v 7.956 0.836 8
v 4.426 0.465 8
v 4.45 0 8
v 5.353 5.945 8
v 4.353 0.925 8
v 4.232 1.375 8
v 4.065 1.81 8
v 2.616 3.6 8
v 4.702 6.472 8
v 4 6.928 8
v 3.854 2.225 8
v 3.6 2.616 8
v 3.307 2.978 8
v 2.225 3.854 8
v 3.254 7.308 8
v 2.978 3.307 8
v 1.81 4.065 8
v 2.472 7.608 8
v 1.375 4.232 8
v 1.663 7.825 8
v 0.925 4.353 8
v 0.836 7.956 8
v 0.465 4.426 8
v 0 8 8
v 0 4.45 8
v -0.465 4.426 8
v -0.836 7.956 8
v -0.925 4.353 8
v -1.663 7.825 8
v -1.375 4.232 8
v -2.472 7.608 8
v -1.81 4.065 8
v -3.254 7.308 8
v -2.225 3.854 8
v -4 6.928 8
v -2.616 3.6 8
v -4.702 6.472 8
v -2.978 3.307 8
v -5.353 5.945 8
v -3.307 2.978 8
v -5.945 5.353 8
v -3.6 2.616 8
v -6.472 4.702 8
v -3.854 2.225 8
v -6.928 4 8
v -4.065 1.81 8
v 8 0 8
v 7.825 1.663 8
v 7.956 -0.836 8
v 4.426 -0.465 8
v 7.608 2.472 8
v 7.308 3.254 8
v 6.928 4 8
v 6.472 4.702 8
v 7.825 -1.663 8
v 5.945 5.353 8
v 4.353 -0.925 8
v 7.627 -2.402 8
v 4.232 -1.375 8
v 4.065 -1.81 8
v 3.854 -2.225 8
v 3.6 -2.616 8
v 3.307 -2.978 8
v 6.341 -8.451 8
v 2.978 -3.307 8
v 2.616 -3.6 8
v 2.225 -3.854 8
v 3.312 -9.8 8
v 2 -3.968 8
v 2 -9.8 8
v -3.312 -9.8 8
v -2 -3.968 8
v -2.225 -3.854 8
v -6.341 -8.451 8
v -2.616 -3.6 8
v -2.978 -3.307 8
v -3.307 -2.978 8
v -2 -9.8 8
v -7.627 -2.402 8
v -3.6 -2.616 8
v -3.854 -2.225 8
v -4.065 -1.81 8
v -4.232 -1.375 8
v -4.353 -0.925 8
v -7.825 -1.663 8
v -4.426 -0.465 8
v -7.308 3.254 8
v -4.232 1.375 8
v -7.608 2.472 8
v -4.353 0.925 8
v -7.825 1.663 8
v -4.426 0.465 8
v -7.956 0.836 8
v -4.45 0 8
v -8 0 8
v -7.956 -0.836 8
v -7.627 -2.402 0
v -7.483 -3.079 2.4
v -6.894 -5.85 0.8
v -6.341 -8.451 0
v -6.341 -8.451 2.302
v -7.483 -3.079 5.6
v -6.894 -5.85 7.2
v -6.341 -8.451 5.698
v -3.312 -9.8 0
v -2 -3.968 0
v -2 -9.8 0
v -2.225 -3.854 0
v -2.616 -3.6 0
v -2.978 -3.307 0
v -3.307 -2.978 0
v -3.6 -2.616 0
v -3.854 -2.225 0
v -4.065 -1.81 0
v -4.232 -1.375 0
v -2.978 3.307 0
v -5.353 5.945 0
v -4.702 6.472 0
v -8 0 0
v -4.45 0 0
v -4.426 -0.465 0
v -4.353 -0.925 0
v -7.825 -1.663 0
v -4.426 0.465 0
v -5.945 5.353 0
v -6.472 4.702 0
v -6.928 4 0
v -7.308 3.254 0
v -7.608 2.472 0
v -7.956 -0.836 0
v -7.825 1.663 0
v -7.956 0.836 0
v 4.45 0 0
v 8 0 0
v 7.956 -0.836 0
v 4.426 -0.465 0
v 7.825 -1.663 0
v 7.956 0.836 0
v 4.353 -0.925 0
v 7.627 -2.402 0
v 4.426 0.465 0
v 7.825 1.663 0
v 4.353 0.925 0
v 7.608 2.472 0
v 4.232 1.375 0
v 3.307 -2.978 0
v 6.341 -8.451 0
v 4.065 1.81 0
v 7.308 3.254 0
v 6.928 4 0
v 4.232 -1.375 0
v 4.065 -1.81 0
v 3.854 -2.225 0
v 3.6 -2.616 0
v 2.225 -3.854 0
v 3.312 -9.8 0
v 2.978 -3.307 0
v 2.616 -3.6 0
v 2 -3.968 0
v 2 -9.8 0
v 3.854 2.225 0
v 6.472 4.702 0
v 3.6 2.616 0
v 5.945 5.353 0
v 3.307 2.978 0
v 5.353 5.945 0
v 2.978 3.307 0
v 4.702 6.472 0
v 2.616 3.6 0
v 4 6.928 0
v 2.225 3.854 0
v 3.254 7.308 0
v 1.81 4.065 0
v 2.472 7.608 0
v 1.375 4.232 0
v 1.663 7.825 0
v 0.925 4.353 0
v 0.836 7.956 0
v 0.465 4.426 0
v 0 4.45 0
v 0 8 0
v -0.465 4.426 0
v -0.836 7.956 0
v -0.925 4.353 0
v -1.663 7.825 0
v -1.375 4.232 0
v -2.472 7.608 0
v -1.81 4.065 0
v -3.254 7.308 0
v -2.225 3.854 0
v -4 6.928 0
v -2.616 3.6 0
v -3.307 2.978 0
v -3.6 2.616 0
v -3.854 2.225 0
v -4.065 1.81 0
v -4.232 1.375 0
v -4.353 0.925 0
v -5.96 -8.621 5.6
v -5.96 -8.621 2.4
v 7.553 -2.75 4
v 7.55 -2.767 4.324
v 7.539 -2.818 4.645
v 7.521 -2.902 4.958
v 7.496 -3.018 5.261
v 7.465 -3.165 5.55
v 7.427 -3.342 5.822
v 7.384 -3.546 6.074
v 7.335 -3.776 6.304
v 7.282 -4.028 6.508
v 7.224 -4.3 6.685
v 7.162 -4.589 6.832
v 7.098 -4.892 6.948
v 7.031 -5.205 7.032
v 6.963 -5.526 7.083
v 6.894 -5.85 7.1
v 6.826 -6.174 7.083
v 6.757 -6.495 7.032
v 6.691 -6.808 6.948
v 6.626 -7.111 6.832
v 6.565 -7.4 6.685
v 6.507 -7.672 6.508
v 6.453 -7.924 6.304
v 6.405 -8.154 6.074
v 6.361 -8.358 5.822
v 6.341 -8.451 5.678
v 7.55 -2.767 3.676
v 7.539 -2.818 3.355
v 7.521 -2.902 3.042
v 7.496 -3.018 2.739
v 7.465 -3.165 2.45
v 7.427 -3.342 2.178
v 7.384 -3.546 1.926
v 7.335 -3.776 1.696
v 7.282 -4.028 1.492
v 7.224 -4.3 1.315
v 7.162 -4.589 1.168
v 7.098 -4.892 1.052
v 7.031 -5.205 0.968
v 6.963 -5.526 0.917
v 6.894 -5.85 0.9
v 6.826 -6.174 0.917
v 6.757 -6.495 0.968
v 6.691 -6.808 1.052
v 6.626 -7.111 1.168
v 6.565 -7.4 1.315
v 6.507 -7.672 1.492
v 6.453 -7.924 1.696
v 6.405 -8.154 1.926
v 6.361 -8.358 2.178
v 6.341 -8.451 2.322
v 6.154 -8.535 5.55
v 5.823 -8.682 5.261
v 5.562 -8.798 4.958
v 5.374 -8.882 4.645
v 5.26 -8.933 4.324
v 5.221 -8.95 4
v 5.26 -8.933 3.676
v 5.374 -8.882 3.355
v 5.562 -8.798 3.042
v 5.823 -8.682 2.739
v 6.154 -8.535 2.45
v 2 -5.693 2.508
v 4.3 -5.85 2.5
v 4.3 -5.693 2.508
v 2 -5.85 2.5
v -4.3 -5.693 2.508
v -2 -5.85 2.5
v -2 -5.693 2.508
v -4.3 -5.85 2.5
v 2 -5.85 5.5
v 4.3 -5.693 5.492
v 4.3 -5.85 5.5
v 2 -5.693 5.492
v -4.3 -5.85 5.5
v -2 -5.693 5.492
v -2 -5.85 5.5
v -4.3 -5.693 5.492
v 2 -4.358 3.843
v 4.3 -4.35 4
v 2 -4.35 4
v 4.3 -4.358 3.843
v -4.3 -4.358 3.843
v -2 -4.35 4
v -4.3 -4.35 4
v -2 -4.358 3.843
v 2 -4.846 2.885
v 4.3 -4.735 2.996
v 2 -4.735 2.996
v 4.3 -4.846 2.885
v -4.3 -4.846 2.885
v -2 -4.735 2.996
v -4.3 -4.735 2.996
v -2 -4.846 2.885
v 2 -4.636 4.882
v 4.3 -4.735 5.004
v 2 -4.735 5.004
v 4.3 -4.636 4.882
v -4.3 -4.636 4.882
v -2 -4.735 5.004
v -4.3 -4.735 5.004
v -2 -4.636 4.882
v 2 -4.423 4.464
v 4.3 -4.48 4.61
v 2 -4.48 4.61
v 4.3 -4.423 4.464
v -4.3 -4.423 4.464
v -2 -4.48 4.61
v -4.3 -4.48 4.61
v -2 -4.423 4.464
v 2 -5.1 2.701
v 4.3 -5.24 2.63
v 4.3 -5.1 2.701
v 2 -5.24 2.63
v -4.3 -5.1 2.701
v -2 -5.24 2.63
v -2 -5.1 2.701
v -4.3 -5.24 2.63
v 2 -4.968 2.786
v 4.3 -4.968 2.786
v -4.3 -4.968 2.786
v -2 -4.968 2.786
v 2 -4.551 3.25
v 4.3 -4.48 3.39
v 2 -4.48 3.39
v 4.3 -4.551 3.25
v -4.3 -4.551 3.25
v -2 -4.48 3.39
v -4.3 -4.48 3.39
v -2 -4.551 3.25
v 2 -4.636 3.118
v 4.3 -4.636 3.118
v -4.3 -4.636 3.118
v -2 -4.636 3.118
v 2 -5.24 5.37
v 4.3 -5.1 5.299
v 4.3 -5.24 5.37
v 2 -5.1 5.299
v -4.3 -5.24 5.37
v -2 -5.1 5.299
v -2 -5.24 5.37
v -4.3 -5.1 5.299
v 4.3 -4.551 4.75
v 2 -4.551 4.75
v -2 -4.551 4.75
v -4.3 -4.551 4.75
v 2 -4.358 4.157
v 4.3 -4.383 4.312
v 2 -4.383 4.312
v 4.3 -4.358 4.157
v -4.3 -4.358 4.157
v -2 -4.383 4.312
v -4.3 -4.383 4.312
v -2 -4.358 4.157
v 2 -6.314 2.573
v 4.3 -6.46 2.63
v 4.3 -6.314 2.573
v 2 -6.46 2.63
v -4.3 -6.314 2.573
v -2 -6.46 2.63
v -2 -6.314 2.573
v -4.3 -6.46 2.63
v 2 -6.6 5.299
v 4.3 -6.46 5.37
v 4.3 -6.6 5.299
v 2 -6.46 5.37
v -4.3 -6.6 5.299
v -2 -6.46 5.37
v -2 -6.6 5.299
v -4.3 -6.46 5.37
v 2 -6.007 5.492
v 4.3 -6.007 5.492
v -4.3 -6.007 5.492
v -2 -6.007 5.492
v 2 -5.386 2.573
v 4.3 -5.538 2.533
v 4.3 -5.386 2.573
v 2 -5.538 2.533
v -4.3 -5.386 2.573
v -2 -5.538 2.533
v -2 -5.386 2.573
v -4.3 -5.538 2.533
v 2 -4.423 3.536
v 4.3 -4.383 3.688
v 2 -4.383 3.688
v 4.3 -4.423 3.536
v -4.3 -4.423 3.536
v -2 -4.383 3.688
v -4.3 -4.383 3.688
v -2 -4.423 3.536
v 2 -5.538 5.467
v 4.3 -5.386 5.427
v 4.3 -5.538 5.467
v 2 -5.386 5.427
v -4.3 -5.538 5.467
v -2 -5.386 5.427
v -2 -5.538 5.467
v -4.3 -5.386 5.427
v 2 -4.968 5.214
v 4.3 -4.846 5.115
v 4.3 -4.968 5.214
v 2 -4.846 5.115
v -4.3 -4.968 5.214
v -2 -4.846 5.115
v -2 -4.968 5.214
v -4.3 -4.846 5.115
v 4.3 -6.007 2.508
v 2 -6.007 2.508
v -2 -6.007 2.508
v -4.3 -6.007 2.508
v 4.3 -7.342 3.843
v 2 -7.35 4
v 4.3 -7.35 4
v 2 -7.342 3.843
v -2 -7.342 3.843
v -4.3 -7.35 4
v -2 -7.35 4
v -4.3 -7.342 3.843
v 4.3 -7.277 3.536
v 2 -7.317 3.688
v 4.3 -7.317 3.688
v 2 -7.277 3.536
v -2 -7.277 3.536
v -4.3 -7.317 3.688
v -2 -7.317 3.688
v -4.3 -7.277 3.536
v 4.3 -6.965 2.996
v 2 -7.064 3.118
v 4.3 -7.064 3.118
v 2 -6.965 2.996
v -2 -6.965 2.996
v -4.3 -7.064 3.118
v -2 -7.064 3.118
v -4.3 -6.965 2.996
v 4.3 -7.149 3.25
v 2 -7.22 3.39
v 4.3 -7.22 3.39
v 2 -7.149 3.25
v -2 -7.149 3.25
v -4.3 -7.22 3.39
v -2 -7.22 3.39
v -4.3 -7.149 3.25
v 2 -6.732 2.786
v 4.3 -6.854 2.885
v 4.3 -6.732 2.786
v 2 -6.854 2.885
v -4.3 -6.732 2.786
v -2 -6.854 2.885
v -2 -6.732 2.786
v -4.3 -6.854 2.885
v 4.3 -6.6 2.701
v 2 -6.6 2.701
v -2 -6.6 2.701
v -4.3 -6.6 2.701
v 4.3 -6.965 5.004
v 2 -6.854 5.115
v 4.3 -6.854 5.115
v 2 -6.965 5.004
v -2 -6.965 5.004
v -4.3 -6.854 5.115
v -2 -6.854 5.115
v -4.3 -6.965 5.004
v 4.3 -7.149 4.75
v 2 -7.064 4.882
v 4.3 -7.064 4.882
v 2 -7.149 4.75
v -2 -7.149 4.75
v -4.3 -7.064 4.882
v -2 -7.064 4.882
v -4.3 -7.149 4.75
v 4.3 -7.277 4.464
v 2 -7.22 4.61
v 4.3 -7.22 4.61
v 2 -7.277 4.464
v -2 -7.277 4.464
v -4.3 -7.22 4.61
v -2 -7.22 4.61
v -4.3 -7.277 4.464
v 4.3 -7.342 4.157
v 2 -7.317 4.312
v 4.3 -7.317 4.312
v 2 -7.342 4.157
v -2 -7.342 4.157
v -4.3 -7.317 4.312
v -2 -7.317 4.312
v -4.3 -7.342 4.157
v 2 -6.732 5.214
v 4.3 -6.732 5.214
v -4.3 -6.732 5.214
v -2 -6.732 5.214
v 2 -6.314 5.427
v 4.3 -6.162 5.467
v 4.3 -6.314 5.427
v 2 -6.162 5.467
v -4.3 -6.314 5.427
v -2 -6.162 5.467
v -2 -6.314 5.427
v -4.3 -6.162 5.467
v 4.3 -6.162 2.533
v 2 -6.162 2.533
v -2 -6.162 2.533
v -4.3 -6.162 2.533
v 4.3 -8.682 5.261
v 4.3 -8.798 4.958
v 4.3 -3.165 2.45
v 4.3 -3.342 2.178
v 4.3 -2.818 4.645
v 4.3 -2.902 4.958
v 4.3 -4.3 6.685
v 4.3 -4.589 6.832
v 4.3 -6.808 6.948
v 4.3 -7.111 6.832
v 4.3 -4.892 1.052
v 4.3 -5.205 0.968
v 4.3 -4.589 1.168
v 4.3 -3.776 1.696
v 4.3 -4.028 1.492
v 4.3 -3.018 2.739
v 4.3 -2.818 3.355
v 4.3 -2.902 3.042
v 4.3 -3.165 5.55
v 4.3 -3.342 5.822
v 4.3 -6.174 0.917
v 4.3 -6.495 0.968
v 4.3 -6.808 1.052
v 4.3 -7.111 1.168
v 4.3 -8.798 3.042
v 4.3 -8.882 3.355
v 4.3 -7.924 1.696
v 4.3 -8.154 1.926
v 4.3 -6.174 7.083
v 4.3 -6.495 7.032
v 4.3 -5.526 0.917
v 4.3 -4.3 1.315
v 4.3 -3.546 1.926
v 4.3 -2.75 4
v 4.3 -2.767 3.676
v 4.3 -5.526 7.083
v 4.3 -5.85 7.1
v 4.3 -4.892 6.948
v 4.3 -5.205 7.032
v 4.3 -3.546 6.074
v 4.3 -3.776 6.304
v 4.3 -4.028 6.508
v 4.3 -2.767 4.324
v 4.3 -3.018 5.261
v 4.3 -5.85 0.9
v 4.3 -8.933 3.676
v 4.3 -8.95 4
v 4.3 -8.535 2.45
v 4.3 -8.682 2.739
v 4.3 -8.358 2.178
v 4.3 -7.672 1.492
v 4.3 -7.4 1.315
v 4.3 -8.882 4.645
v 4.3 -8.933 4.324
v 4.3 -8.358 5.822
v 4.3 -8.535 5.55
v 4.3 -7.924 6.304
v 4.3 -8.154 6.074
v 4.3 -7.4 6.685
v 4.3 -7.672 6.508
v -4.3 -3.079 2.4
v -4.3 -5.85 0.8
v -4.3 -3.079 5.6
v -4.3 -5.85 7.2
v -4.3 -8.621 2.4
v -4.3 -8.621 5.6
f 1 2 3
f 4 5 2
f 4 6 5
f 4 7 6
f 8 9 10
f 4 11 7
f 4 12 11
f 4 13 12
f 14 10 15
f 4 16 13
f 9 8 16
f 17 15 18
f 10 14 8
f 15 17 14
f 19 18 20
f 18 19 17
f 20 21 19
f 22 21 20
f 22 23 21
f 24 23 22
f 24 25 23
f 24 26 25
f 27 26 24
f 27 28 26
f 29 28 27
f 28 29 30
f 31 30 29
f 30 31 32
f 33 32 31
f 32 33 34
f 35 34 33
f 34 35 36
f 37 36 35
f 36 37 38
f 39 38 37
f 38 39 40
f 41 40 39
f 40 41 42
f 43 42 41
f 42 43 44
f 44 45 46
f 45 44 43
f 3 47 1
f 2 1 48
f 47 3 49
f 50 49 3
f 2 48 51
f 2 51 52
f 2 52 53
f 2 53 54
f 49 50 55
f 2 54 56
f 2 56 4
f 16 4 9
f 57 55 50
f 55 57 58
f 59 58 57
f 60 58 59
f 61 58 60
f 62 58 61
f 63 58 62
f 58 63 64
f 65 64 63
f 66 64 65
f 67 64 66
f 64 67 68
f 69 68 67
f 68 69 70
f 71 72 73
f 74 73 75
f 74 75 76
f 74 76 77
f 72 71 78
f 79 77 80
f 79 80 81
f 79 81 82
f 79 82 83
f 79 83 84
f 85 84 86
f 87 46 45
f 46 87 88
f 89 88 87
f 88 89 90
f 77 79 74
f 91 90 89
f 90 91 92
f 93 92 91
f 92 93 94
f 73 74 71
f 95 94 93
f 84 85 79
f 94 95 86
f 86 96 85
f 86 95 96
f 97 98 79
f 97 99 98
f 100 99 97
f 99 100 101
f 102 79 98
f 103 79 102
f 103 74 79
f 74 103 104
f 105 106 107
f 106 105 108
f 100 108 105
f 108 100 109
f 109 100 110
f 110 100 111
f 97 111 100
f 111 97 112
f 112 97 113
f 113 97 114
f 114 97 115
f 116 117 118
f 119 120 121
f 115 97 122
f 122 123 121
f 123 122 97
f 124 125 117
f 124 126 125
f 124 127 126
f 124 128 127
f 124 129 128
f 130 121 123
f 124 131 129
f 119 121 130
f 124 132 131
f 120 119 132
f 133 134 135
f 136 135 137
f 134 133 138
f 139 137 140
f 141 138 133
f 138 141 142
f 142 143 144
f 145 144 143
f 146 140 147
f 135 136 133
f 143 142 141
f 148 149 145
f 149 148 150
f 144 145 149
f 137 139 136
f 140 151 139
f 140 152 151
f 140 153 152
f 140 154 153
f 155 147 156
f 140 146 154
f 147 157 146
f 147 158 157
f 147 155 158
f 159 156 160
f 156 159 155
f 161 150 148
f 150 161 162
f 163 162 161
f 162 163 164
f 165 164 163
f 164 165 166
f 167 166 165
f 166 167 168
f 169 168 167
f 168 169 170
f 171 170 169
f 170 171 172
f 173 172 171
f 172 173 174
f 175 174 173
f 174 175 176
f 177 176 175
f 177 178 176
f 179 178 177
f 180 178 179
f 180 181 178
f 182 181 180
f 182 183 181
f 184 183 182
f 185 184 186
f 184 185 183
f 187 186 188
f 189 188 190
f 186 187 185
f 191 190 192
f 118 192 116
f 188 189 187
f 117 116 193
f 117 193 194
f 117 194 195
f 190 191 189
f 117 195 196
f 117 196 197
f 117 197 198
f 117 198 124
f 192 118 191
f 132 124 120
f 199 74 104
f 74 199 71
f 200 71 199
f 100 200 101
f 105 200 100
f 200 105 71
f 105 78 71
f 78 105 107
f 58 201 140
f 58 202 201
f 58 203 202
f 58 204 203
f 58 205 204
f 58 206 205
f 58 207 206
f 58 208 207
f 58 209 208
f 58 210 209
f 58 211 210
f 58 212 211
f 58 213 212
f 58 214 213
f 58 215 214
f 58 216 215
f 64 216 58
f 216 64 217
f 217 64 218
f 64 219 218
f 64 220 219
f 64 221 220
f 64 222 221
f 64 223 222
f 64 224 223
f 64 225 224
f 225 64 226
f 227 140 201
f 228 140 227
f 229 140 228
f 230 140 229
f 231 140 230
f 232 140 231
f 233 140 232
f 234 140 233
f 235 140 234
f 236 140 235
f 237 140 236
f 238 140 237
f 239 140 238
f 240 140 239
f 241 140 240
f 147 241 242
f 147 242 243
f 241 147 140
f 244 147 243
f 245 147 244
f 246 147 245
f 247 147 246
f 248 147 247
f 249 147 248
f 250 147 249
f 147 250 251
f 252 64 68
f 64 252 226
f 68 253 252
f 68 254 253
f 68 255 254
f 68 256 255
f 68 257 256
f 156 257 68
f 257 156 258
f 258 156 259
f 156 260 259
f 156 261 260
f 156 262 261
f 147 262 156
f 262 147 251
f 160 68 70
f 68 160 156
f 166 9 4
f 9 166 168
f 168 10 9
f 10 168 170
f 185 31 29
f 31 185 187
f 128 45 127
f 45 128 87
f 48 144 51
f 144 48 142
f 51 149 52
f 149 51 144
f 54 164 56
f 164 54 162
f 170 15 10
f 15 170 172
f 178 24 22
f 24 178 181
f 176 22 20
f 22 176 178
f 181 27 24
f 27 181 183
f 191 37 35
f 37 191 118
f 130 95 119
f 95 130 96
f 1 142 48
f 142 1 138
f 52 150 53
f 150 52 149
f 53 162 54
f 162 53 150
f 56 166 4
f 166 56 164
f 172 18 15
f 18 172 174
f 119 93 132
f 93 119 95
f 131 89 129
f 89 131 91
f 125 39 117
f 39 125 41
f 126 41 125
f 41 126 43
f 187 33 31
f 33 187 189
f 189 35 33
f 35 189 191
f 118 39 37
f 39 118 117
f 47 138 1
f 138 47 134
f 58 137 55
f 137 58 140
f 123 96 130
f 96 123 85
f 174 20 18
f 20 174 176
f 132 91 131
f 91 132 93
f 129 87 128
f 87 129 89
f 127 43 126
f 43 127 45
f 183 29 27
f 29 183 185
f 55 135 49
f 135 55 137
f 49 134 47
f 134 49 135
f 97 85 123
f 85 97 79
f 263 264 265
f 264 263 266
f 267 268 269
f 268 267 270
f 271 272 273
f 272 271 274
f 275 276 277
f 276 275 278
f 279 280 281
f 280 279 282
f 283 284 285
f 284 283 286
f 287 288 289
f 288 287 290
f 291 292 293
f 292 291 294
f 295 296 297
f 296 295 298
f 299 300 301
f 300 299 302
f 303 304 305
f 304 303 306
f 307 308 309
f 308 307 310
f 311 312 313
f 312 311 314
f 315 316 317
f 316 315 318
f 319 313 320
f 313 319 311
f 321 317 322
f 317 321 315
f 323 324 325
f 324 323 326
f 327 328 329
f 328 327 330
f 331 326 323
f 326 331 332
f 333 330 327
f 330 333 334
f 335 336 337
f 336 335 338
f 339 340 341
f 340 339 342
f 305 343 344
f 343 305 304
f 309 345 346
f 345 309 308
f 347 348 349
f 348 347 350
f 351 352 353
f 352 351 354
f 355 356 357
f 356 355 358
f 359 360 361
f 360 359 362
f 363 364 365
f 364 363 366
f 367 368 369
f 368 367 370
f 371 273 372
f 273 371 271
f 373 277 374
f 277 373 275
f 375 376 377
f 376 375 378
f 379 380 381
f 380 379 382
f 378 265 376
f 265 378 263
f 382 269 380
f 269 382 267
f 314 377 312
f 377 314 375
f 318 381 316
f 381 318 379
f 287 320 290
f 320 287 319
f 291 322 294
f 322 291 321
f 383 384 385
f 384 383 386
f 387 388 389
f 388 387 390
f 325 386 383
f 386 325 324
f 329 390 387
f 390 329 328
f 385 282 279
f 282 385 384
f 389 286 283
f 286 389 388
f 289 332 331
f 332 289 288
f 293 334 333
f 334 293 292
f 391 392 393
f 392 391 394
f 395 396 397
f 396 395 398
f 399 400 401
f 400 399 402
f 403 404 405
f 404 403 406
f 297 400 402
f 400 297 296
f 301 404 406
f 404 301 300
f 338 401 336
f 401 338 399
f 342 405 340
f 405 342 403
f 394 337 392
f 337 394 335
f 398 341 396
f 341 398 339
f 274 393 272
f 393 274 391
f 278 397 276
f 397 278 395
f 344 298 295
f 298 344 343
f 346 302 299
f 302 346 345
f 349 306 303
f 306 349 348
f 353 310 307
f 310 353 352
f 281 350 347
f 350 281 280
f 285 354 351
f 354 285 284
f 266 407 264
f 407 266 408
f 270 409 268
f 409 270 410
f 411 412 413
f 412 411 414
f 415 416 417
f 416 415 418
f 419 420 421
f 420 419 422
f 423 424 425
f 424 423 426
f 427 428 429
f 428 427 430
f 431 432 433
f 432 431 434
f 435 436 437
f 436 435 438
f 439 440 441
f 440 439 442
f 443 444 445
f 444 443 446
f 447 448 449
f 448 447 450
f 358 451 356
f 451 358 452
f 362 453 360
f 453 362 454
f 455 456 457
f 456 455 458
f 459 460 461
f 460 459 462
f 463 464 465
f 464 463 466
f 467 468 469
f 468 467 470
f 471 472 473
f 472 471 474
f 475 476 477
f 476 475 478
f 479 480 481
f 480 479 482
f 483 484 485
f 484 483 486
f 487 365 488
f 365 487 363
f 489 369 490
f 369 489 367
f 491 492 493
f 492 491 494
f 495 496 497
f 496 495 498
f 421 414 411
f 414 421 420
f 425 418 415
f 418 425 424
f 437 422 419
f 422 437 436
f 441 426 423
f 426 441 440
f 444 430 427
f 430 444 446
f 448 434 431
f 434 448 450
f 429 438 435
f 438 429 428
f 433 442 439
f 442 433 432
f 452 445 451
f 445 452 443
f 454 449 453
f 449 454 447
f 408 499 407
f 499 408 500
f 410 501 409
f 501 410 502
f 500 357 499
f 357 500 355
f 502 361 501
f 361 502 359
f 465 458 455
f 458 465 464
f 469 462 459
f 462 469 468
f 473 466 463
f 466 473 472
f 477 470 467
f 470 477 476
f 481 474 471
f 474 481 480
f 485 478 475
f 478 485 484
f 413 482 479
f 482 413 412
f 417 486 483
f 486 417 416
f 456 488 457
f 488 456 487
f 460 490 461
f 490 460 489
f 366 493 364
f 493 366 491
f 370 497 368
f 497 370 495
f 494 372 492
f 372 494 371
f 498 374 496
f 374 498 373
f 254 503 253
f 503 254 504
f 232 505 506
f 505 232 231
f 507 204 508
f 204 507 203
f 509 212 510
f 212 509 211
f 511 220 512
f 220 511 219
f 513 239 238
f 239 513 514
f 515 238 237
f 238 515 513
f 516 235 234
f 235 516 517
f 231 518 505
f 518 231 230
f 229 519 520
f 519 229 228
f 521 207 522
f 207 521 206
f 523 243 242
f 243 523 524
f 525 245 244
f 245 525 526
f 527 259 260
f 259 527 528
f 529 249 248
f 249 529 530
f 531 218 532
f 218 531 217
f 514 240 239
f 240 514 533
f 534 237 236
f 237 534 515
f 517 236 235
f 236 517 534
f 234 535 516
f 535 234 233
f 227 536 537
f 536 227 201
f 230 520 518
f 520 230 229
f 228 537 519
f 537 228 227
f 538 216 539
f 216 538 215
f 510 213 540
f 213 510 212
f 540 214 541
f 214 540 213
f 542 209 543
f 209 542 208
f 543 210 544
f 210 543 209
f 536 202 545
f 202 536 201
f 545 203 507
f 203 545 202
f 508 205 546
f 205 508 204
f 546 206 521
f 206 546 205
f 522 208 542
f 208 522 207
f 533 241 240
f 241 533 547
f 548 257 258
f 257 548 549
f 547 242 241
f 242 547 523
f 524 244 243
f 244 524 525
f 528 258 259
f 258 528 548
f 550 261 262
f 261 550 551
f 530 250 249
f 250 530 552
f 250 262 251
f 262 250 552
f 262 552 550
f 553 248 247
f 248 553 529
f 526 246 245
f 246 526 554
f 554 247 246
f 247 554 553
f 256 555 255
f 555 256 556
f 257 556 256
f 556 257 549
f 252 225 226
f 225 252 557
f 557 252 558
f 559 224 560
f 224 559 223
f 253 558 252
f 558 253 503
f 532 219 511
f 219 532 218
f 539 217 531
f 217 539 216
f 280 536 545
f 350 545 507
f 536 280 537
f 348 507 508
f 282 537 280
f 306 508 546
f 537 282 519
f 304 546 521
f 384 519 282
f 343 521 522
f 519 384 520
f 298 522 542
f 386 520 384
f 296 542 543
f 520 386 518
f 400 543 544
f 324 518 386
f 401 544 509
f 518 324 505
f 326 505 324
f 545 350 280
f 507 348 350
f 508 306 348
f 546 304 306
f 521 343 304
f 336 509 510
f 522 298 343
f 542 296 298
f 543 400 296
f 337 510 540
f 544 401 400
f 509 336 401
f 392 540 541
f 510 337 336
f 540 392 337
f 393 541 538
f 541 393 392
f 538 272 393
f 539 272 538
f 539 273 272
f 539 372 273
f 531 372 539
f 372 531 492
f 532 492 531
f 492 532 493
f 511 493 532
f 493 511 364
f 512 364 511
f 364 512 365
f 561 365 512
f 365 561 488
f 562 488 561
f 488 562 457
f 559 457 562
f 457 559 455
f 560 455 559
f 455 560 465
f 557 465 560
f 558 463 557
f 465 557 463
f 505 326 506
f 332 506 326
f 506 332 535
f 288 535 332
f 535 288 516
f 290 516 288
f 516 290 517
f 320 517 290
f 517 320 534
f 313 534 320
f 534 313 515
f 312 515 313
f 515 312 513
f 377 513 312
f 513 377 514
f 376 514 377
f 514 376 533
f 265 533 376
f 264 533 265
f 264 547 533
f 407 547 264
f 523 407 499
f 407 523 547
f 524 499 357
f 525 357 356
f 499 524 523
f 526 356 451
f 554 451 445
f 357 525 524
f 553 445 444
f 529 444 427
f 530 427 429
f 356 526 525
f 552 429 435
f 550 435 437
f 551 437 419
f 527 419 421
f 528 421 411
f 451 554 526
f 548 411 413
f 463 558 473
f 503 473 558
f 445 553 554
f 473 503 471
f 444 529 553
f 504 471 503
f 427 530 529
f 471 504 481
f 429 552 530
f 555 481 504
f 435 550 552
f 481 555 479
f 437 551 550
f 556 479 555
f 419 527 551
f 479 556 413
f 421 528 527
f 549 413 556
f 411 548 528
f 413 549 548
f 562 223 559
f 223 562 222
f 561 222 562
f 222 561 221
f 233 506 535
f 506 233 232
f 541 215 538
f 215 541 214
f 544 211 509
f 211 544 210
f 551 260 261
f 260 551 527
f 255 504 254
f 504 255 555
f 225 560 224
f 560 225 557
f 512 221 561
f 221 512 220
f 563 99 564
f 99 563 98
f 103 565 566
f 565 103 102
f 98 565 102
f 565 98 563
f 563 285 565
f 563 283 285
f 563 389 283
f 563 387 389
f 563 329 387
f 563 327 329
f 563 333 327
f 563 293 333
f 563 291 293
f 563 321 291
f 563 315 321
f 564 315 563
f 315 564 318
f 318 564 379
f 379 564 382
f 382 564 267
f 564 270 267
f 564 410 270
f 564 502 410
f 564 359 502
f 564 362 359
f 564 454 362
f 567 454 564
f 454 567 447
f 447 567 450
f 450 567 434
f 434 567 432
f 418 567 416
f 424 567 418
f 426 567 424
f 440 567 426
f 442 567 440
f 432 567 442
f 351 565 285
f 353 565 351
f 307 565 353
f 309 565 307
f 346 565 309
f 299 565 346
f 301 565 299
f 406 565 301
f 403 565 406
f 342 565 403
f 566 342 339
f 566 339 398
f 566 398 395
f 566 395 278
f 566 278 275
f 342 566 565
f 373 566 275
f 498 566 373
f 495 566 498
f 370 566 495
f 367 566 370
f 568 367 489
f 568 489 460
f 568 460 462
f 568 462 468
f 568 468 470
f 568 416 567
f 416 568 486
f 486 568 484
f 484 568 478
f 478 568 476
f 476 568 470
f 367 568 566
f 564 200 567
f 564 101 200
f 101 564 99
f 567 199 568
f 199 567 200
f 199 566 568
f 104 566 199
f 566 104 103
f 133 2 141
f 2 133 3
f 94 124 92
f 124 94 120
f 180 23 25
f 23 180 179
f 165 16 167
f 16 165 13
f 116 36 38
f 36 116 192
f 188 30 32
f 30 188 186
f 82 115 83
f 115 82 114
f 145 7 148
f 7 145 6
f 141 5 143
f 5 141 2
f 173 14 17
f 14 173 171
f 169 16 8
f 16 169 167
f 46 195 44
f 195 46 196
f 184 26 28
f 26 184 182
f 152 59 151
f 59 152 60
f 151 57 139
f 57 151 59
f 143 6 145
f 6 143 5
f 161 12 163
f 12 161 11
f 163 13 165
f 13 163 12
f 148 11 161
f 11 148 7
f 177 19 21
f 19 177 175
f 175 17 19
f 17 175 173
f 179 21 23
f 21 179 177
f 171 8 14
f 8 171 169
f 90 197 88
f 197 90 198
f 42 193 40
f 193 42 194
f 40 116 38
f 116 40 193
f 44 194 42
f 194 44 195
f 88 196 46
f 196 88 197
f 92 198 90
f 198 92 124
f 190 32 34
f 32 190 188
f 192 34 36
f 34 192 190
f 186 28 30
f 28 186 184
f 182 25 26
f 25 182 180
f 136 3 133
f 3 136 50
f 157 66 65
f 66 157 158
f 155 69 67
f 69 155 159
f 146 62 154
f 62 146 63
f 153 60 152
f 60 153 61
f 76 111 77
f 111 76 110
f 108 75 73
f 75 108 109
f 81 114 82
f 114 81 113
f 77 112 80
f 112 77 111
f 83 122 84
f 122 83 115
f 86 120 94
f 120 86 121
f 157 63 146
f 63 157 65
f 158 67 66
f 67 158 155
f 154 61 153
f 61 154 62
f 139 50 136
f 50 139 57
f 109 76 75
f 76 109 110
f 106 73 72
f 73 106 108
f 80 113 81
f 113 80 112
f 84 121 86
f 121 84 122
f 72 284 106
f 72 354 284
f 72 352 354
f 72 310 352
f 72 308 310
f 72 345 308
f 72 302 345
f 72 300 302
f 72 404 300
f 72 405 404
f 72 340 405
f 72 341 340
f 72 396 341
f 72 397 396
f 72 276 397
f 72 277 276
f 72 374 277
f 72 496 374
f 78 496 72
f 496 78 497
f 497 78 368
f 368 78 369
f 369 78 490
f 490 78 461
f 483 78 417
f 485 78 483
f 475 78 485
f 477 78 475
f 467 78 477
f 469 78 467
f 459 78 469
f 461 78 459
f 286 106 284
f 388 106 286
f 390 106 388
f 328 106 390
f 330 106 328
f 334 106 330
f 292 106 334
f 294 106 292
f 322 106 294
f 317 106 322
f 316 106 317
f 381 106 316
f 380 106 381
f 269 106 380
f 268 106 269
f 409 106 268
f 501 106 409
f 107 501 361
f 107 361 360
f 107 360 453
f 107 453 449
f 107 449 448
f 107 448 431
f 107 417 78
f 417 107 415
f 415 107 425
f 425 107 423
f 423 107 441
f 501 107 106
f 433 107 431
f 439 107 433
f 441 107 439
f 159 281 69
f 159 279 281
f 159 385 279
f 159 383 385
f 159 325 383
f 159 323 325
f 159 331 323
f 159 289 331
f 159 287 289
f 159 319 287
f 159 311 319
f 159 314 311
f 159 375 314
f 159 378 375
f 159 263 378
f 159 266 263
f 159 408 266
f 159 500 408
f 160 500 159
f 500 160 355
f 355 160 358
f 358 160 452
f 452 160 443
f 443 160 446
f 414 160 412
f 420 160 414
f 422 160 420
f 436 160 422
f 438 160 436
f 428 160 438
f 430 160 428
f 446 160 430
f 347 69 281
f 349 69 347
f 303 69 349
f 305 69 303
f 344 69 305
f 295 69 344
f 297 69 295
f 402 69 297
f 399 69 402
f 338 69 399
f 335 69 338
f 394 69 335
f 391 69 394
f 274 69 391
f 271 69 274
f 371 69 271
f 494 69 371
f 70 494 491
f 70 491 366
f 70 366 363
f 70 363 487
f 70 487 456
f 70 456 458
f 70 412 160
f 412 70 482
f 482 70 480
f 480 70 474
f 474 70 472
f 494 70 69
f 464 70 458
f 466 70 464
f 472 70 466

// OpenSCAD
// file: config.scad
/**
 * Глобальный конфигурационный файл
 */
// качество цилиндров
$fn=30;

// избегание совпадения граней
DELTA=0.1;

// толщина рамы
FRAME=15;
// main file
include <config.scad>

//translate([0,0,0])color([1,0,0])import("homut.stl");

// качество цилиндров
$fn=60;
// наружный радиус
r1=8;
// внутренний радиус
r2=4.45;
// габаритная высота
h1=8;
// щель
dx=4;

// радиус винта М3
r3=3/2;
// радиус головки винта М3
r4=6.2/2;
// радиус гайки М3
r5=6.4/2;
// высота гайки
h2=3.7;

module ear() {
intersection() {
    rotate([0,0,180+12])cube([7.96,9.5,h1]);
    rotate([0,0,180-24])translate([-3,0,0])cube([9,10.3,h1]);
    translate([-9.8,-9.8,0])cube([9.8,9.8,h1]);
}
}

module frame_part05() {
difference() {
    union() {
        cylinder(r=r1,h=h1);
        ear();
        mirror([1,0,0])ear();
    }
    translate([0,0,-DELTA])cylinder(r=r2,h=h1+DELTA*2);
    translate([-dx/2,-r1-2,-DELTA])cube([dx,r1+2,h1+DELTA*2]);
    translate([-r1,-5.85,h1/2])rotate([0,90,0]){
        cylinder(r=r3,h=2*r1);
        translate([0,0,2*r1-h2])cylinder(r=r4,h=h2);
        cylinder(r=r5,h=h2,$fn=6);
    }
}
}

frame_part05();
